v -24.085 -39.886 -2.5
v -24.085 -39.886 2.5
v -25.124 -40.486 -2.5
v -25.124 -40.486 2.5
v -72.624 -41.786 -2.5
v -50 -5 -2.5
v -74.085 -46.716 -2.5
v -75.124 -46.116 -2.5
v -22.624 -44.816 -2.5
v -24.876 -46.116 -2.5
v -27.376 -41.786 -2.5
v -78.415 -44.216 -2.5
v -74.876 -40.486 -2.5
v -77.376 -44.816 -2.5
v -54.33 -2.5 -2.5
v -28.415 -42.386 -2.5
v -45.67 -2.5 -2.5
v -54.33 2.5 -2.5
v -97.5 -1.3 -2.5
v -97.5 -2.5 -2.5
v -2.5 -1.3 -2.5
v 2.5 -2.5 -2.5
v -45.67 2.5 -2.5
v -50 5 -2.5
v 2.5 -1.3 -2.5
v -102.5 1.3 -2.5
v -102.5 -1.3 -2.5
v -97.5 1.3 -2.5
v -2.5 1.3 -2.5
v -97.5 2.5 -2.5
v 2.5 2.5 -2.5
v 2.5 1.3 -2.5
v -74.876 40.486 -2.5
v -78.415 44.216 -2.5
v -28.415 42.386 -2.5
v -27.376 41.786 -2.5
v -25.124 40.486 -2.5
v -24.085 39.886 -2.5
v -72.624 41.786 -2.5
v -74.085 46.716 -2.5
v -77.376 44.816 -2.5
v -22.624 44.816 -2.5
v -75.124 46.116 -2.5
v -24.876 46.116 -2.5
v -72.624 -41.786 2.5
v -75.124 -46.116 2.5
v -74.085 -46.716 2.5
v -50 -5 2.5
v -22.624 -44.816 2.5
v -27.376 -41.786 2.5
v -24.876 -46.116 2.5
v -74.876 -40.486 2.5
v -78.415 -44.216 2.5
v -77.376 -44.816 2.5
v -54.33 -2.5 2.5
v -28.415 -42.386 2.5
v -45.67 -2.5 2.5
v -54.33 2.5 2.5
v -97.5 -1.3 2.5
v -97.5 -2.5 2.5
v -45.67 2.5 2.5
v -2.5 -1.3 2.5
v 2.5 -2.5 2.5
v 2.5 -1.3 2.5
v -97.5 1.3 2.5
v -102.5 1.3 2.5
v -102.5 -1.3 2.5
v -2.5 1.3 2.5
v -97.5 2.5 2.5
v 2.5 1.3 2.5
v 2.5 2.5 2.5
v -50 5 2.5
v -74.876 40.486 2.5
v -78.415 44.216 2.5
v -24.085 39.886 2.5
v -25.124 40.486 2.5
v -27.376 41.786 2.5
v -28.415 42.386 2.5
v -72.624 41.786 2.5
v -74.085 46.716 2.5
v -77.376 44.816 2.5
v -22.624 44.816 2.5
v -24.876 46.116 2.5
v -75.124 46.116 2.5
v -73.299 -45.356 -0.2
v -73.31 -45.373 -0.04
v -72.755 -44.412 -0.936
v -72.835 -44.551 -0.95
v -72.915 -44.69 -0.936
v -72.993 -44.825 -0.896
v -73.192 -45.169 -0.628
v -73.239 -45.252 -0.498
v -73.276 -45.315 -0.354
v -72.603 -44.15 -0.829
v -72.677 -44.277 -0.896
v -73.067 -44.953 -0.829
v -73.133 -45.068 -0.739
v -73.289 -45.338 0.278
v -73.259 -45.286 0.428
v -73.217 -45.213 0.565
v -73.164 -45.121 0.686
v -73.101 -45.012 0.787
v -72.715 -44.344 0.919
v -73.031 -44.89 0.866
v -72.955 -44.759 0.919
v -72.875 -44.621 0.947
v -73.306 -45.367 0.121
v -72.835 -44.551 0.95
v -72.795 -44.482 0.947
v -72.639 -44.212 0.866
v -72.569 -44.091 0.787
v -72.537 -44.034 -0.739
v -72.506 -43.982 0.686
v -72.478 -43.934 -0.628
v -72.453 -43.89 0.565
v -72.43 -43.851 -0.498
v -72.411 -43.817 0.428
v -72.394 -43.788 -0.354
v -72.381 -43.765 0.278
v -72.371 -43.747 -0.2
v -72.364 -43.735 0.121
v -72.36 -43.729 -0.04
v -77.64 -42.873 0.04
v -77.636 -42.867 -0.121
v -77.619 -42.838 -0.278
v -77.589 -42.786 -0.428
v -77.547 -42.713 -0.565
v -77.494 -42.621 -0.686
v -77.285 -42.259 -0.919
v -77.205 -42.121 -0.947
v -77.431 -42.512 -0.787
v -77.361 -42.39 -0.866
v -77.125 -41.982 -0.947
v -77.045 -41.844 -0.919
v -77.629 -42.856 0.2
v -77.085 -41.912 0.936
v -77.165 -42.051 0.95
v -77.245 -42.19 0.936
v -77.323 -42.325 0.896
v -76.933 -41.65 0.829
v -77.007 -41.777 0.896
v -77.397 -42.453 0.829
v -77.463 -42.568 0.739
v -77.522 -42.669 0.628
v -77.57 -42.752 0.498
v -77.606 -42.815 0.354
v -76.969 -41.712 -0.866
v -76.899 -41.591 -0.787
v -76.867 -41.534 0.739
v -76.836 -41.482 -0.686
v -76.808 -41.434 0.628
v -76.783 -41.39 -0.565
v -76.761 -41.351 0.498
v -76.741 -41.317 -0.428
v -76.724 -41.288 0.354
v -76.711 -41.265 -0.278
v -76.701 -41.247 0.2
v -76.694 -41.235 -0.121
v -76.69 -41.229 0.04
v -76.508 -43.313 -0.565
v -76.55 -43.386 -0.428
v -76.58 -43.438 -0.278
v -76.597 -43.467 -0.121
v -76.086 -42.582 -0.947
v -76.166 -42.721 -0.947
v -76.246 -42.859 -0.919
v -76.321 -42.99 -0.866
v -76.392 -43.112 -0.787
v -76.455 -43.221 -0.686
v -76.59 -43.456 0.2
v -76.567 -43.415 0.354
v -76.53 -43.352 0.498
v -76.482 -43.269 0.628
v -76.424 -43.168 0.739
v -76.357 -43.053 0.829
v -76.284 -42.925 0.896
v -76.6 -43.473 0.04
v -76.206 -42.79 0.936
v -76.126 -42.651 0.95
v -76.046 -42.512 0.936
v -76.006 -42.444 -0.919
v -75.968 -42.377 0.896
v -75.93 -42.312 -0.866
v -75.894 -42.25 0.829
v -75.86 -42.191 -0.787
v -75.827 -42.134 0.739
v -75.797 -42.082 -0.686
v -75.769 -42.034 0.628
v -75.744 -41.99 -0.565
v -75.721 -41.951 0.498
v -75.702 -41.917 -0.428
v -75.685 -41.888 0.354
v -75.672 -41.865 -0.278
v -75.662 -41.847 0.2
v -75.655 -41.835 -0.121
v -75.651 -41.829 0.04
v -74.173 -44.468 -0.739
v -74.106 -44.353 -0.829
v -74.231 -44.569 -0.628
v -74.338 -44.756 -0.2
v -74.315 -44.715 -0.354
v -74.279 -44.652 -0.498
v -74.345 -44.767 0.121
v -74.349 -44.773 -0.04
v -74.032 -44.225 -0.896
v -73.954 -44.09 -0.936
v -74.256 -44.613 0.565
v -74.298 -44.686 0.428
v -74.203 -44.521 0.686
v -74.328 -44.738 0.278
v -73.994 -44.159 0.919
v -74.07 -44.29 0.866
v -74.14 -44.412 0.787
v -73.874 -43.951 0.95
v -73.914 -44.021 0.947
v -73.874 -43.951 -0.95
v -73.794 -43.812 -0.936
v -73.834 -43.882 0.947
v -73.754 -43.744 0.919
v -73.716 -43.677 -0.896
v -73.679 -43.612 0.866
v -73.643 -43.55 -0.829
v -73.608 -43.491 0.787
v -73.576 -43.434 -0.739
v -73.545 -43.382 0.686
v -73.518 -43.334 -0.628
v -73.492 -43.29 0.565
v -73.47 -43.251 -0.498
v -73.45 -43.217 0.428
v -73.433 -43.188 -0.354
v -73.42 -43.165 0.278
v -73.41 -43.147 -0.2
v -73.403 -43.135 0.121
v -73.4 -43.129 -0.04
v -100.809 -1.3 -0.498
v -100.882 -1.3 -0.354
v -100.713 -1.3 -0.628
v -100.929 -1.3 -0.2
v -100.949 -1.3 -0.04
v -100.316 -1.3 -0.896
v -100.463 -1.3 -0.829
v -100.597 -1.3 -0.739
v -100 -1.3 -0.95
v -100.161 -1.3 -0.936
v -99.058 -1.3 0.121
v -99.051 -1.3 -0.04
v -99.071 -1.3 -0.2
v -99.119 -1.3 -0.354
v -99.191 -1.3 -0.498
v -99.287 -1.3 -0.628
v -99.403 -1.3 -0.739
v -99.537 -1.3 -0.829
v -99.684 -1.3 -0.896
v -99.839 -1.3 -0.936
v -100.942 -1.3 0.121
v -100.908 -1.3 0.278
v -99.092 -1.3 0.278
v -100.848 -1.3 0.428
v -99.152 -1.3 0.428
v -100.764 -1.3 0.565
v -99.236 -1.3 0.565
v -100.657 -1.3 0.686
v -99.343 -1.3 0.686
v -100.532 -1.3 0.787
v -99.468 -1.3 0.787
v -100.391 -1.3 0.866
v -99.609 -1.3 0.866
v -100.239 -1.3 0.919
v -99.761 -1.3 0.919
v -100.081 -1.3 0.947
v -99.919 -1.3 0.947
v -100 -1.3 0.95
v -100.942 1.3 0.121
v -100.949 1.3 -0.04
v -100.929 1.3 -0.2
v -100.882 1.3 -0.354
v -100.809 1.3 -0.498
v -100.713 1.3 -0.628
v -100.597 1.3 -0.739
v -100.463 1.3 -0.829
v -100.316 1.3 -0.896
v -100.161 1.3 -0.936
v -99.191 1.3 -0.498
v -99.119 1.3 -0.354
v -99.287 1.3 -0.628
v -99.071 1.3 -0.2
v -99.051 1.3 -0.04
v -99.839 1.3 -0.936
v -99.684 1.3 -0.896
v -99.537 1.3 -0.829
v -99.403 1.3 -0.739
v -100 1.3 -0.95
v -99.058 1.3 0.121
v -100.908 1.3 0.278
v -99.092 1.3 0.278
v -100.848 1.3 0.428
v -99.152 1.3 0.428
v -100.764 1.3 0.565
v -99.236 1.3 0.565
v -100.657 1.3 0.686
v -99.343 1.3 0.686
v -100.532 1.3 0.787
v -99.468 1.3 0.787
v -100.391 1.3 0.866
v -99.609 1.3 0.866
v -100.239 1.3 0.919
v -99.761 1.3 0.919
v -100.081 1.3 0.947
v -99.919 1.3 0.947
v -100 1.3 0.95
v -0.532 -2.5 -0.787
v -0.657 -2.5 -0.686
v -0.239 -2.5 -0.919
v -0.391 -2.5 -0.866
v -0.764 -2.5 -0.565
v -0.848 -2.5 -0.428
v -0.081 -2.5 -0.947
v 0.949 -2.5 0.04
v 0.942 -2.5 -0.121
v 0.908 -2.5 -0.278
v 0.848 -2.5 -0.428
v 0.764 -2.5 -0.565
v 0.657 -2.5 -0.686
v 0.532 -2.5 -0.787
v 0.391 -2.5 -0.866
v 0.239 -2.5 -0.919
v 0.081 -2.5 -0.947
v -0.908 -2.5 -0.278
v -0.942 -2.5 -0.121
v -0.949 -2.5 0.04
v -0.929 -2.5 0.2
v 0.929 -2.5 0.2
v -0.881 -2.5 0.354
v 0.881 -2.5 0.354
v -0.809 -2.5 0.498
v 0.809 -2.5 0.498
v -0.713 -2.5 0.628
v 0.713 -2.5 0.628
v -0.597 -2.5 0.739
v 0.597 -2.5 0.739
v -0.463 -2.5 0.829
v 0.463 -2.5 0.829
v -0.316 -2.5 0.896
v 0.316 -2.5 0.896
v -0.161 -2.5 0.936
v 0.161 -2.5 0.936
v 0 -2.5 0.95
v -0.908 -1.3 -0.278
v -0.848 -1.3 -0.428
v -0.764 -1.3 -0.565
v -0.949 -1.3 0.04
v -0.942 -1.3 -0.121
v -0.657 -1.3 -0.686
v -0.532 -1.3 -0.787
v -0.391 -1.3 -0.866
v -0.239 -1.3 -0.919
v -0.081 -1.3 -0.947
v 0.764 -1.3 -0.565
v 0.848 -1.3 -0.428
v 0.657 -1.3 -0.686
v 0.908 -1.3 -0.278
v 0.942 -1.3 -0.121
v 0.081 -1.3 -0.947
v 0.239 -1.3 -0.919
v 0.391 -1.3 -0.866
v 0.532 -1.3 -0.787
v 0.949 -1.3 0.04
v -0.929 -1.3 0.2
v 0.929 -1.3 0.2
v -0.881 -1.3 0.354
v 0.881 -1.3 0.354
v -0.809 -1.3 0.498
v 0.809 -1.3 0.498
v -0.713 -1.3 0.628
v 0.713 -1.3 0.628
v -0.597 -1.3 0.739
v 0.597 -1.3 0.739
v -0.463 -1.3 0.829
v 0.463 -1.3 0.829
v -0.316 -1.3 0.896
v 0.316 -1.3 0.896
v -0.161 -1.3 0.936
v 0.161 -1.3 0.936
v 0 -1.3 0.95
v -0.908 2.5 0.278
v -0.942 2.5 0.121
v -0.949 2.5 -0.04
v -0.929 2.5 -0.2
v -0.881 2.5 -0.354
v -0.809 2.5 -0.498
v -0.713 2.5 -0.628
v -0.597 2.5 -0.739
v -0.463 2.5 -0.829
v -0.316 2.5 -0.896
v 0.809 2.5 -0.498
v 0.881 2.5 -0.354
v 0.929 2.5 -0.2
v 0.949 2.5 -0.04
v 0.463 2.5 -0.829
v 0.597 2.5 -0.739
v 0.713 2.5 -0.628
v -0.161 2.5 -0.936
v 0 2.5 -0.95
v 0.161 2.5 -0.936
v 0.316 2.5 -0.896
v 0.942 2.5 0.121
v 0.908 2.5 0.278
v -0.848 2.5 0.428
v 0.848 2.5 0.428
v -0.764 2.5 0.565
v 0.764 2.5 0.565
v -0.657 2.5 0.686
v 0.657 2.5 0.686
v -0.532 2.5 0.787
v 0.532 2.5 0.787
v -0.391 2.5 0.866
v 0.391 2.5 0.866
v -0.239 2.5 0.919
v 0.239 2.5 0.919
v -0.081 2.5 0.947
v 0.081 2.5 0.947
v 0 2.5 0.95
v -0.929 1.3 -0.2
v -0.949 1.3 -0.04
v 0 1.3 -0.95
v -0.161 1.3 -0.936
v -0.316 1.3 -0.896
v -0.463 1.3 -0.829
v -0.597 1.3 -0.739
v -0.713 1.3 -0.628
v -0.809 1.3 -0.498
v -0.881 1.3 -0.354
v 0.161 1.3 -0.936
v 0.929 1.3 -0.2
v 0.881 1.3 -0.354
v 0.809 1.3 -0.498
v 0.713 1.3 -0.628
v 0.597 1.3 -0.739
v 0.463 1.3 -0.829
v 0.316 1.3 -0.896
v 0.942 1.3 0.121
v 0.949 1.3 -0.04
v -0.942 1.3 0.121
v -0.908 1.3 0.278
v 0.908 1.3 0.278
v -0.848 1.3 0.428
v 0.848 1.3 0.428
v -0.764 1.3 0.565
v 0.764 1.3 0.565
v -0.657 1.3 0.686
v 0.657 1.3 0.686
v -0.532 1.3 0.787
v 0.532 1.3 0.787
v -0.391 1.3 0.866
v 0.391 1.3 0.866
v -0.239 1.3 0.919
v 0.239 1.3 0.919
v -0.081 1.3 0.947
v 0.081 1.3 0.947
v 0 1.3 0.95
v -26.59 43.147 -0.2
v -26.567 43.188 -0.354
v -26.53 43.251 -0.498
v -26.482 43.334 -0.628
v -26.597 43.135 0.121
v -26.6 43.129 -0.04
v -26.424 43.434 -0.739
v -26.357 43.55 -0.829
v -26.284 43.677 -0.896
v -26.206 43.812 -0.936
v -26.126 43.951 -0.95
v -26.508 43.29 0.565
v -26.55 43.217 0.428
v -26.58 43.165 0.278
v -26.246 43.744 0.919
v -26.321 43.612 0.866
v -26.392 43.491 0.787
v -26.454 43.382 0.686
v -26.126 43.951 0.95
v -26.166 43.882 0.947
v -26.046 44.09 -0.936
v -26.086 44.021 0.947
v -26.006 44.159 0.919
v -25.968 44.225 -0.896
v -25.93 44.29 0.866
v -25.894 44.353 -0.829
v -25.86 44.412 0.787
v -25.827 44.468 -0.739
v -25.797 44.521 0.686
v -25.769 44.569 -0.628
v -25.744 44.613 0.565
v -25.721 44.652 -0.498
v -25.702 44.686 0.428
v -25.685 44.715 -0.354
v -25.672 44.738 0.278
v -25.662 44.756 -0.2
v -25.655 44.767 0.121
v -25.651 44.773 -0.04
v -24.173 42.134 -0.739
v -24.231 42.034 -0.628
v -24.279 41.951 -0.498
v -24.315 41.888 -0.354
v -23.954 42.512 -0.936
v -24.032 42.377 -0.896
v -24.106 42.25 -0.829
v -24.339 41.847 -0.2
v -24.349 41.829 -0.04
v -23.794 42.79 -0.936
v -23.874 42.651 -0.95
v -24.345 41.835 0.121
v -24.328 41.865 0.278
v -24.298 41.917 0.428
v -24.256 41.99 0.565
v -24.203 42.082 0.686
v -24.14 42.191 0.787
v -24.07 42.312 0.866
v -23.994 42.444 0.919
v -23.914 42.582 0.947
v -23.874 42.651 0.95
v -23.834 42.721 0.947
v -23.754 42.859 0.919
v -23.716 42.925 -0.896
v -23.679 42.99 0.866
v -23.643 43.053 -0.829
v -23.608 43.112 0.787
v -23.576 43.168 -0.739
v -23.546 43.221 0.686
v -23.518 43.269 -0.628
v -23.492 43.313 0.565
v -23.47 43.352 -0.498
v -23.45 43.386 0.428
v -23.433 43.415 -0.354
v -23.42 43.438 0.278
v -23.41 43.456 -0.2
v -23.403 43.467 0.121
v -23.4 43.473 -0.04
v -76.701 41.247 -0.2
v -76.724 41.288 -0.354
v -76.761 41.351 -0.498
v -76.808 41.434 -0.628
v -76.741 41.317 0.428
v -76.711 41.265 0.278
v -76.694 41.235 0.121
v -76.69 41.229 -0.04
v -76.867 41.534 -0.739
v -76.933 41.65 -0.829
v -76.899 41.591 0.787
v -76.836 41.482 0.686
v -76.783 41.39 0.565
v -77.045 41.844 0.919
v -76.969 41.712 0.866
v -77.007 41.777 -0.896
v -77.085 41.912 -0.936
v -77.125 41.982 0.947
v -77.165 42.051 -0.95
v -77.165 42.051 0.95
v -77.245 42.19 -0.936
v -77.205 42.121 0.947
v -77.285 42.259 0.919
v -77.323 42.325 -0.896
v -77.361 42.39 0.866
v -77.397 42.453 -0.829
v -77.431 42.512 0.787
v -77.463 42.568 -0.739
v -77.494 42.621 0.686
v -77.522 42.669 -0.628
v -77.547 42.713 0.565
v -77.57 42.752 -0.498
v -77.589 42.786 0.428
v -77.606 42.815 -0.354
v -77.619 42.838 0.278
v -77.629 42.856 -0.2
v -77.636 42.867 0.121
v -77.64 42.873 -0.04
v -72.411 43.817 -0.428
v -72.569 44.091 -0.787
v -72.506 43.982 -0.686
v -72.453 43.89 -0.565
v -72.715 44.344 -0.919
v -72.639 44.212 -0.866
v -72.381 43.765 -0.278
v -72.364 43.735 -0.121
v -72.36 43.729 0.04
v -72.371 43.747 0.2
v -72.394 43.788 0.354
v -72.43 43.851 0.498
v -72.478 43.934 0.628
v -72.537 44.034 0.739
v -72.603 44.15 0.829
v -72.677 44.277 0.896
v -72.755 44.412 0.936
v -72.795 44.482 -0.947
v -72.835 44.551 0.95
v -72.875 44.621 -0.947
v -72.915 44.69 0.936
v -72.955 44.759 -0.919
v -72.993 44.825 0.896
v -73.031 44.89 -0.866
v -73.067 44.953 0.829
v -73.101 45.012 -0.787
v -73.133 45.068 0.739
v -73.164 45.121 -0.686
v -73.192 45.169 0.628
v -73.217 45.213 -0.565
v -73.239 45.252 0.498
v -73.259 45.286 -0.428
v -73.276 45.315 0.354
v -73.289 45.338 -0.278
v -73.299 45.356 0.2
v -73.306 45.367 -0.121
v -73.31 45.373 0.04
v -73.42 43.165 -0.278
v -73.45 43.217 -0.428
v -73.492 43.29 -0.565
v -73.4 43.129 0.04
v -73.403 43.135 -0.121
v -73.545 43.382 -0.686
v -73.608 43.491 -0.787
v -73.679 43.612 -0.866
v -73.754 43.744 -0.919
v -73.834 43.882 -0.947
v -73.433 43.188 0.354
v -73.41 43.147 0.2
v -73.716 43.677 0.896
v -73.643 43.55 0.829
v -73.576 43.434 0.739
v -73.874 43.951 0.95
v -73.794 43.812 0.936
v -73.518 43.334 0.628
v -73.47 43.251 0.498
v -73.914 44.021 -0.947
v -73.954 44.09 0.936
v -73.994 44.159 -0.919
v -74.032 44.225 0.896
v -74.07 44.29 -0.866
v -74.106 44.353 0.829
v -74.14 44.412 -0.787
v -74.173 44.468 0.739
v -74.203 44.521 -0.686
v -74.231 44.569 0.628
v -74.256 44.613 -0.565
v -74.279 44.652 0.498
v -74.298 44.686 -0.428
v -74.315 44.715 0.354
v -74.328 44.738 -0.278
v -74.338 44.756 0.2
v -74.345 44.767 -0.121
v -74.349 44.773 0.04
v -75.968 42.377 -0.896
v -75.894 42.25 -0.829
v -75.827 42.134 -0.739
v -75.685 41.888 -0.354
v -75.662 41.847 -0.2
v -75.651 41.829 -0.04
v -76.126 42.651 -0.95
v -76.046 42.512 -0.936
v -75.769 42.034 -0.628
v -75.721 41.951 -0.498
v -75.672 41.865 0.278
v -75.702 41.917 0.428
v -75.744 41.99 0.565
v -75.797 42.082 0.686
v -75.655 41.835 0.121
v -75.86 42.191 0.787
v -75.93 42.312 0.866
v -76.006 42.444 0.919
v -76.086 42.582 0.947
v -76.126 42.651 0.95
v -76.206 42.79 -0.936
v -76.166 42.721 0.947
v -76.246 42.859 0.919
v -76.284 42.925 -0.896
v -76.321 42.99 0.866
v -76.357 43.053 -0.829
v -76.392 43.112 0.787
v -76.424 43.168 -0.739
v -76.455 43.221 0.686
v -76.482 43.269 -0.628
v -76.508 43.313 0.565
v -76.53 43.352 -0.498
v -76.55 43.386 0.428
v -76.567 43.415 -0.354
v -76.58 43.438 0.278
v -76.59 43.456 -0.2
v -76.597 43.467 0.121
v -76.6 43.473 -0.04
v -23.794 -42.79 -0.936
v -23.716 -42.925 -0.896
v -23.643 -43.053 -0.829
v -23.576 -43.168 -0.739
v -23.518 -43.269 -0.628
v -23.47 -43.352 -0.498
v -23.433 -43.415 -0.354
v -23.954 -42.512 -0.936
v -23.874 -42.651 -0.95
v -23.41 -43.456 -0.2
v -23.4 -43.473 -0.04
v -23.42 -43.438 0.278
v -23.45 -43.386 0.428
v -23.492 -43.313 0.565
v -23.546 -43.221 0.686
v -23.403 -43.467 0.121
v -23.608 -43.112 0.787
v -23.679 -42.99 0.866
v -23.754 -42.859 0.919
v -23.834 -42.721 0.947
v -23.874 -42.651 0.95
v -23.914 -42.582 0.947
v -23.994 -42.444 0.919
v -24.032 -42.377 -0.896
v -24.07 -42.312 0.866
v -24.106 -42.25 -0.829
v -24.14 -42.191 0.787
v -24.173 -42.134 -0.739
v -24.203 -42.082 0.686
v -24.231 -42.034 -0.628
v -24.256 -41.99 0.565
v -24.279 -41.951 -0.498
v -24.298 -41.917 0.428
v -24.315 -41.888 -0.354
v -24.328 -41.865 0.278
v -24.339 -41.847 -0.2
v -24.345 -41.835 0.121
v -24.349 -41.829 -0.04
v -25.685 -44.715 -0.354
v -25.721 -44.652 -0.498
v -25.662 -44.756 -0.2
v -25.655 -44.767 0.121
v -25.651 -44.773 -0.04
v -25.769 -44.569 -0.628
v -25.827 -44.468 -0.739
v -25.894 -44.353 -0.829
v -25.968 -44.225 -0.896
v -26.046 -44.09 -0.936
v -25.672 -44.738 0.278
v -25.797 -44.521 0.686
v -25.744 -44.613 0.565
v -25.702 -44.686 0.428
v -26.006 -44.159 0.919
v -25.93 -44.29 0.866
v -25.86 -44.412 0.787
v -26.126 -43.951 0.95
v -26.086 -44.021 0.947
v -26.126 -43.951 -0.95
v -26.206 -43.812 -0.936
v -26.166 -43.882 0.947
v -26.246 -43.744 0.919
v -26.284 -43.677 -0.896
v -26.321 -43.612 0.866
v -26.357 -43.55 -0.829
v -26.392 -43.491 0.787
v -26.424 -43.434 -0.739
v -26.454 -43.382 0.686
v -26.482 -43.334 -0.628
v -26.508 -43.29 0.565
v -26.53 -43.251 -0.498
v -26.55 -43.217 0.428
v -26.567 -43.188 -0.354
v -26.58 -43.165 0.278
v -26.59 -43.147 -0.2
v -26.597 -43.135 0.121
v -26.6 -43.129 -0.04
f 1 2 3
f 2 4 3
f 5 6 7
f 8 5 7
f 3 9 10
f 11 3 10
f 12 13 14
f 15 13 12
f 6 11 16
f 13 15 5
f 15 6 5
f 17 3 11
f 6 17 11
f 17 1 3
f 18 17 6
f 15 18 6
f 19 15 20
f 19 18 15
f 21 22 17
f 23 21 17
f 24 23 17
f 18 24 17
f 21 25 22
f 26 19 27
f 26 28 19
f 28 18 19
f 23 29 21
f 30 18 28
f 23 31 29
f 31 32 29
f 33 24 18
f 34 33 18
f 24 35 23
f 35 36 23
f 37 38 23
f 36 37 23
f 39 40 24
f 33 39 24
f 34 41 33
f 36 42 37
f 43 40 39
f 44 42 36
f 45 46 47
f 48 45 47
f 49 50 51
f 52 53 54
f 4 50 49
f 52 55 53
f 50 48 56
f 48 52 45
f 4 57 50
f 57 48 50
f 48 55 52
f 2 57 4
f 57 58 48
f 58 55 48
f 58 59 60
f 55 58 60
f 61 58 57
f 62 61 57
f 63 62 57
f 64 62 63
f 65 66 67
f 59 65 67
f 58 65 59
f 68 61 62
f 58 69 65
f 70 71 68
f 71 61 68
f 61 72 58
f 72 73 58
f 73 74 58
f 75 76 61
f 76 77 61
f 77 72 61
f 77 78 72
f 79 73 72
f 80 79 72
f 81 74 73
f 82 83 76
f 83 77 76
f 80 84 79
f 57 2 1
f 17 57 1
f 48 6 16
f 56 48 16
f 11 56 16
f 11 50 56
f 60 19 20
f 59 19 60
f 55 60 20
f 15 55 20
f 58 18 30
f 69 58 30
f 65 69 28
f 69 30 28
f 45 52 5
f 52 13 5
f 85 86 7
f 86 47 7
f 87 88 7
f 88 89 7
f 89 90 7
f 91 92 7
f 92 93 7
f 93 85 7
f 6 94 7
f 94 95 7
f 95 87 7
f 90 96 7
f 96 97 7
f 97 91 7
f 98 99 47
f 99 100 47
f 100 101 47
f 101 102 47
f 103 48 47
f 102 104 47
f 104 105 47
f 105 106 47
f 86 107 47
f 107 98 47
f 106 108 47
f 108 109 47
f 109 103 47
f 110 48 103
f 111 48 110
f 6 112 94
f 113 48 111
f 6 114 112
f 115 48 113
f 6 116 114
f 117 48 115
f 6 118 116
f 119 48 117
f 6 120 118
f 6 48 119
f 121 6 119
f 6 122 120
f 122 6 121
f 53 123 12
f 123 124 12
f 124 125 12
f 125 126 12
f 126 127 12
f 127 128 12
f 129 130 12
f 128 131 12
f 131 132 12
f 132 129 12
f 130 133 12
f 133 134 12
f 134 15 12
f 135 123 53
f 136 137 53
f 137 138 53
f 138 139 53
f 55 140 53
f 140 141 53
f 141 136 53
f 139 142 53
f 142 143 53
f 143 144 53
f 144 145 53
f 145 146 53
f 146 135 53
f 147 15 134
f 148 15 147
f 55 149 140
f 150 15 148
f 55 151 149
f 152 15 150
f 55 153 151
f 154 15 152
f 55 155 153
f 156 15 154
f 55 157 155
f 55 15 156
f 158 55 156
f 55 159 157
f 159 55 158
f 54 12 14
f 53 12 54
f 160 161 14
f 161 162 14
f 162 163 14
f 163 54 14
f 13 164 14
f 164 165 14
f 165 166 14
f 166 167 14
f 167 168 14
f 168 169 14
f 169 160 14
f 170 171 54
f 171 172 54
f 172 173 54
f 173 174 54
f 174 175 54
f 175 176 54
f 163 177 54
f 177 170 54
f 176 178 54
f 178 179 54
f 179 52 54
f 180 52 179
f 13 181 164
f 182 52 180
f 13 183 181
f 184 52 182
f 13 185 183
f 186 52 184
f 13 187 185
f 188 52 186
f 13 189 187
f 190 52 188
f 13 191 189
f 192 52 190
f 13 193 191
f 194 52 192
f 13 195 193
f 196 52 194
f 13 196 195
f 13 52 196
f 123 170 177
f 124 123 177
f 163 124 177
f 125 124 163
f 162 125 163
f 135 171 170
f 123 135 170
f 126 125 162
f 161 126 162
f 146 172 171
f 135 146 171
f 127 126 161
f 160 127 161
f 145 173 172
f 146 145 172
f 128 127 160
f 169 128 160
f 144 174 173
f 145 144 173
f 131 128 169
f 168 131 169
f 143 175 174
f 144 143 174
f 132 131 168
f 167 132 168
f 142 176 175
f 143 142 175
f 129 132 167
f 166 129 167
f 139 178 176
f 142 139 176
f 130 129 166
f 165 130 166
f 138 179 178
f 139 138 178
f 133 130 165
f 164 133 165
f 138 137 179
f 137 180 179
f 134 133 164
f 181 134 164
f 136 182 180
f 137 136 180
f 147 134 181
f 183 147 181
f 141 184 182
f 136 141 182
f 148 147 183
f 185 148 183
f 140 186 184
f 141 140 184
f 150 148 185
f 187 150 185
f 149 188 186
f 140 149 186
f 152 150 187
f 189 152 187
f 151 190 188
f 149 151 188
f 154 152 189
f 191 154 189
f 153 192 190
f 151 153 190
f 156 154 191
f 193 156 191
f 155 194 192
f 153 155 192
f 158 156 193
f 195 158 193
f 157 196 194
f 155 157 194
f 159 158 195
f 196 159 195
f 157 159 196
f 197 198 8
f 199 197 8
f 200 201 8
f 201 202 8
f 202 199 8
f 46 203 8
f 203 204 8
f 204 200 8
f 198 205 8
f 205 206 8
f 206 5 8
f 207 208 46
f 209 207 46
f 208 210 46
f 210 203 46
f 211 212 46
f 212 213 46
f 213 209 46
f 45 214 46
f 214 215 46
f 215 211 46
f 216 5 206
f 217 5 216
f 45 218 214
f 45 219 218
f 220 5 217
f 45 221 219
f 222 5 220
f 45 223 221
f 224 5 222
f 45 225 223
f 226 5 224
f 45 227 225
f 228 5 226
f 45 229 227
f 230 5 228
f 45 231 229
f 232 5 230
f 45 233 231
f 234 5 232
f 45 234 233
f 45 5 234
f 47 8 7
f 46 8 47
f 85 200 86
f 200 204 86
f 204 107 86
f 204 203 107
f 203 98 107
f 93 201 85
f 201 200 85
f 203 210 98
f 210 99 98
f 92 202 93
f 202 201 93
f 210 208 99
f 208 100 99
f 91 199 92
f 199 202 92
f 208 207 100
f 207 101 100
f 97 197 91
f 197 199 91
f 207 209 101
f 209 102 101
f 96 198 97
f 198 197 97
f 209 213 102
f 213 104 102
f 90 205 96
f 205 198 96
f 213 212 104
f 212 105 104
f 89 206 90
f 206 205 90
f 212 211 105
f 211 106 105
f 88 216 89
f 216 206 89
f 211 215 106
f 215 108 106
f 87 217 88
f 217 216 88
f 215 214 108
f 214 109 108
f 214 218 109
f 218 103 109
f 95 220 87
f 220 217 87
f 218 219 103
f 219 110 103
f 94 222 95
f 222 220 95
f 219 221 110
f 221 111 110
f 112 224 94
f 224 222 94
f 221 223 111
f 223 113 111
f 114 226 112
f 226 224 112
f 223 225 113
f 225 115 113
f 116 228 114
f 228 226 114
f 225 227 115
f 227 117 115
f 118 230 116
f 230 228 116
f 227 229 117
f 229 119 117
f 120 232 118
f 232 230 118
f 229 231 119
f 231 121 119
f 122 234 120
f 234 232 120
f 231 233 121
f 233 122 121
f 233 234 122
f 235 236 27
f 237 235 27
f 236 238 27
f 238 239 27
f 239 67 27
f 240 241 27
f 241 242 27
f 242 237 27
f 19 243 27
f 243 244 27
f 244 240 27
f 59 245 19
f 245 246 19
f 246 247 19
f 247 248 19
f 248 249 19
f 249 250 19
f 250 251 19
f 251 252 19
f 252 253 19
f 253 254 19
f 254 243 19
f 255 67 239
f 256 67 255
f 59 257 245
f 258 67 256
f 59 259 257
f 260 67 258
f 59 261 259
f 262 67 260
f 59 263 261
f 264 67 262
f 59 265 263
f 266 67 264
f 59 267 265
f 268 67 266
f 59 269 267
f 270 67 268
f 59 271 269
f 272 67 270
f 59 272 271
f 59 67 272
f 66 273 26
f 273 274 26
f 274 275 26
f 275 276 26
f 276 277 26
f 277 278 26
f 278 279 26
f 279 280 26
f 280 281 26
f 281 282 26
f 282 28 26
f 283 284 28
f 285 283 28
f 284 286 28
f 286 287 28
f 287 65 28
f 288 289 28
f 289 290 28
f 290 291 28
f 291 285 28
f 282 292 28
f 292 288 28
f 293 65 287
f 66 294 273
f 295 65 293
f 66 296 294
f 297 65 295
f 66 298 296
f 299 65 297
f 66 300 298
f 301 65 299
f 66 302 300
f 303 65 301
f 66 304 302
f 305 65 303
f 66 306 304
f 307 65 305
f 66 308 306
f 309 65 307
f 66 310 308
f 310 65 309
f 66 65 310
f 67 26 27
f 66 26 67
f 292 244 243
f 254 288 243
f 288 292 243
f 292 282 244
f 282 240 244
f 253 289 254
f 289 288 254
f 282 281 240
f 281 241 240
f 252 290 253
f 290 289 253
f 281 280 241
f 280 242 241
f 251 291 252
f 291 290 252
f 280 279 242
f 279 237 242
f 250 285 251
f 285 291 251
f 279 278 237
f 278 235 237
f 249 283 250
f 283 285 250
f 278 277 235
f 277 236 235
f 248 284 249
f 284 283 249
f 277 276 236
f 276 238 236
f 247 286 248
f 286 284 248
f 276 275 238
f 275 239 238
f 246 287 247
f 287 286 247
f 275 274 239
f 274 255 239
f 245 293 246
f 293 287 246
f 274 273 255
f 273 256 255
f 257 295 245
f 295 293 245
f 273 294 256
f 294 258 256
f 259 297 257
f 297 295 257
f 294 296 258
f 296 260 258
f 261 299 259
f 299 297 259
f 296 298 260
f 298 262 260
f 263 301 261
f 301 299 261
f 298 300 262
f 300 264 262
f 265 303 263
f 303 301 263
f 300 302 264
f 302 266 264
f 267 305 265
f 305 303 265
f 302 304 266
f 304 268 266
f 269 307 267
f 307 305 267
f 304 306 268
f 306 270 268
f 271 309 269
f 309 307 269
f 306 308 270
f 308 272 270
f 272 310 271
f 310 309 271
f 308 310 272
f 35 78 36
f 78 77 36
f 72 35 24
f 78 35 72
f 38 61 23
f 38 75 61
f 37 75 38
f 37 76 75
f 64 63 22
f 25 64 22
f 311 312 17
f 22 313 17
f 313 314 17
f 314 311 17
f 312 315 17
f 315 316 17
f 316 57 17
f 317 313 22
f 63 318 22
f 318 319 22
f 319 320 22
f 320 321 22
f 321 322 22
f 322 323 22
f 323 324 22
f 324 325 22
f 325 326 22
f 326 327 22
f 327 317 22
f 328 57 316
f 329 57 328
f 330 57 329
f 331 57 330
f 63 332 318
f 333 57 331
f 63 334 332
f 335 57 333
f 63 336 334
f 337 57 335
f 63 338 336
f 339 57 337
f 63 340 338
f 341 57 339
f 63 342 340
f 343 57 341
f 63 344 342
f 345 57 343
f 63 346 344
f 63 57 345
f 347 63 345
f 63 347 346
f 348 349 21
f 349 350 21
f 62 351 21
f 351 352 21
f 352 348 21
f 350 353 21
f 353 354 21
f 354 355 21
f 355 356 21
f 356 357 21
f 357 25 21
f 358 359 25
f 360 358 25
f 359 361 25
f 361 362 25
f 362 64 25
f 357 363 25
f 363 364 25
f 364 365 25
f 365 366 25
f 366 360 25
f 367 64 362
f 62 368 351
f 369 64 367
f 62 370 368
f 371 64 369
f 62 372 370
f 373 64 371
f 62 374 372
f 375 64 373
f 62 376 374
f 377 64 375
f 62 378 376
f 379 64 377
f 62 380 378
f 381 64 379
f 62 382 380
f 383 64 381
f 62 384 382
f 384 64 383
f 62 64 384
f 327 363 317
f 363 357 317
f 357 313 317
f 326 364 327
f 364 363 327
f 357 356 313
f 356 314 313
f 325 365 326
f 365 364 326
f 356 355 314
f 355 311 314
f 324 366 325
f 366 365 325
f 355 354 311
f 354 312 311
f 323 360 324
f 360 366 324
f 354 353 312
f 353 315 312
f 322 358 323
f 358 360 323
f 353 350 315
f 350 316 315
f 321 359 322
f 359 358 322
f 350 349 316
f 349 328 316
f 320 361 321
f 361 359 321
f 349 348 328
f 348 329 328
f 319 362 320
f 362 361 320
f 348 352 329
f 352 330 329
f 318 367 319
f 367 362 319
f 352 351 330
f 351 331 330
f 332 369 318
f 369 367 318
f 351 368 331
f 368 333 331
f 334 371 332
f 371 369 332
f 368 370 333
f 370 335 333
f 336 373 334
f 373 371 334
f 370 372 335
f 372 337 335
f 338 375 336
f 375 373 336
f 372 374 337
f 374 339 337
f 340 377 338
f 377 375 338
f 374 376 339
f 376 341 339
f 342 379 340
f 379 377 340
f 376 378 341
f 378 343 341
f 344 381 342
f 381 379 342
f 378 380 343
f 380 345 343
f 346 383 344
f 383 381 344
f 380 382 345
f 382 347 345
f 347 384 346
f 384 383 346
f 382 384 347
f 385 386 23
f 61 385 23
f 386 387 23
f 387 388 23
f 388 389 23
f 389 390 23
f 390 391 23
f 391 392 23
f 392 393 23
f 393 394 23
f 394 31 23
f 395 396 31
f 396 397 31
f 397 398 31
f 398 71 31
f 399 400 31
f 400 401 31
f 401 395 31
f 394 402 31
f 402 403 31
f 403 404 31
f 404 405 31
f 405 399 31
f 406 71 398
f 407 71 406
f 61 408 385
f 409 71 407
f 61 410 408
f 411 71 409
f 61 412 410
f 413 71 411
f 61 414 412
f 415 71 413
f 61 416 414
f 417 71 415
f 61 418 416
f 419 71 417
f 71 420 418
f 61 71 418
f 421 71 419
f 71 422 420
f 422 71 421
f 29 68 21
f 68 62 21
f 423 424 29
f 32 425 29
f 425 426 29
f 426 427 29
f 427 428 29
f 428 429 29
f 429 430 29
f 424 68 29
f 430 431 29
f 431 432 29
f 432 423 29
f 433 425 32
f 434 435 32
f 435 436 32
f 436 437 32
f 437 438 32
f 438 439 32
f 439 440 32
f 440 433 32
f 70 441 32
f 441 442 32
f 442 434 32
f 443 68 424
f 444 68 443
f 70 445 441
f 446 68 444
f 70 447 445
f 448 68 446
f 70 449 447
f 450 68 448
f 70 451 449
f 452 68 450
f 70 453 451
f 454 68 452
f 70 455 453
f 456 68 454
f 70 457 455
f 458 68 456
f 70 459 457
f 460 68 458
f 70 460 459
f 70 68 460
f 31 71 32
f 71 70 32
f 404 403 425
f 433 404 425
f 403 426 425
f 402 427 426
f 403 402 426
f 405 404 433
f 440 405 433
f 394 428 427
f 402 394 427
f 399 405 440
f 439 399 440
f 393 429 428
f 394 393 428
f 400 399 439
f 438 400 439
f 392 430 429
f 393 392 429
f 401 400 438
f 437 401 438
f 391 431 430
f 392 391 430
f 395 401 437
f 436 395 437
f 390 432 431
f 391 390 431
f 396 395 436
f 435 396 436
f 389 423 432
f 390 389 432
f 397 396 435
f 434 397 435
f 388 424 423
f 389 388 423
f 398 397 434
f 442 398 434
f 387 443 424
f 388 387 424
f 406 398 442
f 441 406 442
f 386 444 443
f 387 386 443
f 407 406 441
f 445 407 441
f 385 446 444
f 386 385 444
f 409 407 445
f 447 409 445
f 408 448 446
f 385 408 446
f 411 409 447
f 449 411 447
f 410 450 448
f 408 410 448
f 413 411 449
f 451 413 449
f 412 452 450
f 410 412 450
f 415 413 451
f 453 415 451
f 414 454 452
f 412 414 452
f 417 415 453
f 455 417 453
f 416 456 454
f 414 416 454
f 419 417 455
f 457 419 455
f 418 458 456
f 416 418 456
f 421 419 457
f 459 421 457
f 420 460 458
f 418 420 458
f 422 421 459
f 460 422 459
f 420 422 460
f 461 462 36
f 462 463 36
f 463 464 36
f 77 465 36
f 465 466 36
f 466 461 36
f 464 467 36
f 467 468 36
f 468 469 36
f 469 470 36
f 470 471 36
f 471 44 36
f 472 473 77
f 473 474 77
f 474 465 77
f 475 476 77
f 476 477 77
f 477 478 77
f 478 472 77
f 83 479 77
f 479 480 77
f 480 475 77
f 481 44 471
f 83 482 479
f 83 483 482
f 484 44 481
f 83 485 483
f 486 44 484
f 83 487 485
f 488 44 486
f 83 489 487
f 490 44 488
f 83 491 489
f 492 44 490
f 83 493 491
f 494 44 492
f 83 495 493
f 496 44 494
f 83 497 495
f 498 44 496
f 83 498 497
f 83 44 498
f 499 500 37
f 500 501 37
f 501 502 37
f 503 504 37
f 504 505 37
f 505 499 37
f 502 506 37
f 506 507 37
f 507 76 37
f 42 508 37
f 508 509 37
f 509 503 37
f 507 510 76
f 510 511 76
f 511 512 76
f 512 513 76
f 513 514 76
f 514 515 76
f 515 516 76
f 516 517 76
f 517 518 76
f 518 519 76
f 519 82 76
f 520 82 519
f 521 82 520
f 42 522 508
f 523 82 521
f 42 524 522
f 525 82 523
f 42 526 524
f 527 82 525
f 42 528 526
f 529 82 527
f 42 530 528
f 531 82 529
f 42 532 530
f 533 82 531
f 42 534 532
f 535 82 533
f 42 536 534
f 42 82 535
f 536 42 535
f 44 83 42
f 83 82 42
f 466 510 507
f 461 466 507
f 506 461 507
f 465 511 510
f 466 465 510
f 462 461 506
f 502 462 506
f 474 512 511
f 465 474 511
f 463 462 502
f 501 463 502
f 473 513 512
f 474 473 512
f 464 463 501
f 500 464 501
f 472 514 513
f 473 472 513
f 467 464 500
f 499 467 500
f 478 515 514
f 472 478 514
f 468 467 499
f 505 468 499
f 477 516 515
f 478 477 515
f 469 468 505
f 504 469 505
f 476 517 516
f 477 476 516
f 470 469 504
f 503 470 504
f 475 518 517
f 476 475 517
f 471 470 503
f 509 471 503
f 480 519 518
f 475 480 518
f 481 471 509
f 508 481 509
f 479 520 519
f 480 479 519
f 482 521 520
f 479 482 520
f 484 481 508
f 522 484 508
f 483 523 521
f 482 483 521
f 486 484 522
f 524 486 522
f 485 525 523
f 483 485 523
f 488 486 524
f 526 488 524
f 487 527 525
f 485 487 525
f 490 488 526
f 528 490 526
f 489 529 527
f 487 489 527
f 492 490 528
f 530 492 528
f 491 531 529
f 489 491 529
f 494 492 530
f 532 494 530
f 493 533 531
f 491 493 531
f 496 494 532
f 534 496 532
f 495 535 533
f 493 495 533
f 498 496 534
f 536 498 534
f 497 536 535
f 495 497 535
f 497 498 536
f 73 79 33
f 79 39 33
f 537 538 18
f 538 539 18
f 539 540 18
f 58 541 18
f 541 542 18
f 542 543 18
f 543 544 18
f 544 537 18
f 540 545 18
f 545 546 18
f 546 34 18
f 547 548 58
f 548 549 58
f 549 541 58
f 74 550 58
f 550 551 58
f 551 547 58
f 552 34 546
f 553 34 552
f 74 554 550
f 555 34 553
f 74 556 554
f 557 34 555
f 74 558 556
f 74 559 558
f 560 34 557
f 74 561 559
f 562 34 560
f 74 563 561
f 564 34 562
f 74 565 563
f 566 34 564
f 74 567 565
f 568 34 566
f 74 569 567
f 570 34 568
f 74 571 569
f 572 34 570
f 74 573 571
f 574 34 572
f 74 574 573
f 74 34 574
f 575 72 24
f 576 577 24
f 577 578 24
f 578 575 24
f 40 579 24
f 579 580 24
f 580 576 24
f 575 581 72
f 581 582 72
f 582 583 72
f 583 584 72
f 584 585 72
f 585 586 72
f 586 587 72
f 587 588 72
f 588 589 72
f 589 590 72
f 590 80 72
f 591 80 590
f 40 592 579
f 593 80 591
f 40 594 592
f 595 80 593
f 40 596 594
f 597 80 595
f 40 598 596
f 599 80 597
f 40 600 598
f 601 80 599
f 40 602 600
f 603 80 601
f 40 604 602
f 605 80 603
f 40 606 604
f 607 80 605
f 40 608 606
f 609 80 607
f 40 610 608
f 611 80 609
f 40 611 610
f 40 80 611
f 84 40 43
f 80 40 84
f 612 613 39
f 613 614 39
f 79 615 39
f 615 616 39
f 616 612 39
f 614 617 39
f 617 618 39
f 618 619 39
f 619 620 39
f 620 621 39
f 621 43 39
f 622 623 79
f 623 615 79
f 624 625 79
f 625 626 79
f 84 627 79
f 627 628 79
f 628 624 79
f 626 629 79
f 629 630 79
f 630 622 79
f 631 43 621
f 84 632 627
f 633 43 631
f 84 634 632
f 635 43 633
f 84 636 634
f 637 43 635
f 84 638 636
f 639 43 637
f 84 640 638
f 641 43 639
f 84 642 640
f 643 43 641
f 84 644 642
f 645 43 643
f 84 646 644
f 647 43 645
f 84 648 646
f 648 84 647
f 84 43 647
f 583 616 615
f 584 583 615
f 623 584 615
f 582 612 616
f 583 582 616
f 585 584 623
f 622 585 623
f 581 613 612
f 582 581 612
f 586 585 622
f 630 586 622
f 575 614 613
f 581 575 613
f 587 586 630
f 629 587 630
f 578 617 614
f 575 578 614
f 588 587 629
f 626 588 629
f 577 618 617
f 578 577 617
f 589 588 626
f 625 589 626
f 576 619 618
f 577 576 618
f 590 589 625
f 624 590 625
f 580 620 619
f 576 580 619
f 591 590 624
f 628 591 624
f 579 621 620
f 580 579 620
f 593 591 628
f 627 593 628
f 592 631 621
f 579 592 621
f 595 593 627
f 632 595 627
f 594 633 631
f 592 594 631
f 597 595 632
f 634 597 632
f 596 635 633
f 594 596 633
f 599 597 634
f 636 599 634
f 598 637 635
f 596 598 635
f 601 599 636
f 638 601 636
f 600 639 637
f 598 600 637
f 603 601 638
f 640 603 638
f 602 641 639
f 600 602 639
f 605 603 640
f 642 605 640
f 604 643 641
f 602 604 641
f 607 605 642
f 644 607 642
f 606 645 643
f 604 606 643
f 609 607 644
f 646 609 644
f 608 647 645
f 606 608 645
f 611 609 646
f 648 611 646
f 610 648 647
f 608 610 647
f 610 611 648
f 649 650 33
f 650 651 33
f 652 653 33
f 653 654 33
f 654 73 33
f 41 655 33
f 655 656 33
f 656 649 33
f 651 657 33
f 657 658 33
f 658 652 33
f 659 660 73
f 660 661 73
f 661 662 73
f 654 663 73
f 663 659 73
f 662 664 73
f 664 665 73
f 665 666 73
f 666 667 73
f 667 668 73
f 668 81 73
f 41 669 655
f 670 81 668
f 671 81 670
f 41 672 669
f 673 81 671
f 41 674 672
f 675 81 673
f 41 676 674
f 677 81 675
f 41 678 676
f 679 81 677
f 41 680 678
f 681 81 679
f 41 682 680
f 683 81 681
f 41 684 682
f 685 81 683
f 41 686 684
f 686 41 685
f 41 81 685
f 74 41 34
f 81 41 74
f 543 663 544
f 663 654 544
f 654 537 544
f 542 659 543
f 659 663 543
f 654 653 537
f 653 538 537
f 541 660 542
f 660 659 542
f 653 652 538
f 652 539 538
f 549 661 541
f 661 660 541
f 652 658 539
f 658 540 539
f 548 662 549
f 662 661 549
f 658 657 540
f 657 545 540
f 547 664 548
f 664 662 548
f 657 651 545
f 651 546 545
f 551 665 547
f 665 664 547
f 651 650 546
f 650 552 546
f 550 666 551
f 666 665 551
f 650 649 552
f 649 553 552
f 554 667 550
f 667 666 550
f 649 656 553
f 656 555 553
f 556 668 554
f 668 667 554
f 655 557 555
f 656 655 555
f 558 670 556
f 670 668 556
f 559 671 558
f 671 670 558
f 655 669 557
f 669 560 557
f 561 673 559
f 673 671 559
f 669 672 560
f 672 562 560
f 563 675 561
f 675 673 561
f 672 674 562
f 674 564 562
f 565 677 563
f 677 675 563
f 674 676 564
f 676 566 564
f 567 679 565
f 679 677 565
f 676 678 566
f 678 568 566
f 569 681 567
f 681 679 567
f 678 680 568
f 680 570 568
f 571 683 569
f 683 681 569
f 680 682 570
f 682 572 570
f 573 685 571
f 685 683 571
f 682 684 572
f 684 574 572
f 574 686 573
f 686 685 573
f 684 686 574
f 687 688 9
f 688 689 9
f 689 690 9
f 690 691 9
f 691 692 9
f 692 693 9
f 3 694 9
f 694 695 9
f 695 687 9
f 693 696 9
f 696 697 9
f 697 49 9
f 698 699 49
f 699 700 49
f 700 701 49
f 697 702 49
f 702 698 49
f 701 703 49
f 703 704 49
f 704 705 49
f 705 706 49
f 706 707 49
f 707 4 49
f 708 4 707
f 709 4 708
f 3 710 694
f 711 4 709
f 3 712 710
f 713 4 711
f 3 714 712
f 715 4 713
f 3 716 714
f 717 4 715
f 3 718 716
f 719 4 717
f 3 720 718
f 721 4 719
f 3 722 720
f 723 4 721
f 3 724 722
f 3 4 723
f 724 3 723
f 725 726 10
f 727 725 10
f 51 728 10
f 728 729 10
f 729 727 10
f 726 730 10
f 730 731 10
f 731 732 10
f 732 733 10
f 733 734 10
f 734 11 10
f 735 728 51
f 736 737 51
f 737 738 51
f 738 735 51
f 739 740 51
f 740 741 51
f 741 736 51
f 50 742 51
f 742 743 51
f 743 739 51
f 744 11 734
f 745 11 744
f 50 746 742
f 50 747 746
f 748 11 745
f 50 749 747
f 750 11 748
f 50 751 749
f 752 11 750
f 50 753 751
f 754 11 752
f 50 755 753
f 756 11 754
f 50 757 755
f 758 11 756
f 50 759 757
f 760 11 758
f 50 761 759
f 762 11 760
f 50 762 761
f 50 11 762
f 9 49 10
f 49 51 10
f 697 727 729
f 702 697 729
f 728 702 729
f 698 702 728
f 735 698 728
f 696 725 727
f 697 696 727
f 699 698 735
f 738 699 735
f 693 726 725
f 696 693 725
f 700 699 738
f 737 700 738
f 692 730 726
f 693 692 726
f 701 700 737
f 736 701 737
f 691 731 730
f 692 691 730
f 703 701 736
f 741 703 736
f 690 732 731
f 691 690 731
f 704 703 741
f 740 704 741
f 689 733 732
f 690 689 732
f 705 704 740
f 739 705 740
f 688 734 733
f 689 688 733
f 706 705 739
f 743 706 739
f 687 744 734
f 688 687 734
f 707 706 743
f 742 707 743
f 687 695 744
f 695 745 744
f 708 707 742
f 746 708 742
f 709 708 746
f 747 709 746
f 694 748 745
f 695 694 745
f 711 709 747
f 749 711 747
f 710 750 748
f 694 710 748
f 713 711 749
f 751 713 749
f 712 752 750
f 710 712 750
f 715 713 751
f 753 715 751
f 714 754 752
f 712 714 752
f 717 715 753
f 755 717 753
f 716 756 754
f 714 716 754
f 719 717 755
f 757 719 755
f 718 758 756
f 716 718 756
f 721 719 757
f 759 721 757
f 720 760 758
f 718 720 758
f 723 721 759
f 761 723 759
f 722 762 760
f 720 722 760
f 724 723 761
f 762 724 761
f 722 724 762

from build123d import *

# Parameters (mm, degrees)
SKETCH1_W               = 5
SKETCH1_H               = 5
SKETCH1_R               = 0.95
CENTER_DEPTH            = 1.3
RIGHTSIDE_START         = 1.3
SKETCH1_2_W             = 5
SKETCH1_2_H             = 5
SKETCH1_2_R             = 0.95
RIGHTSIDE_DEPTH         = 1.2
LEFTSIDE_START          = -1.3
SKETCH1_3_W             = 5
SKETCH1_3_H             = 5
SKETCH1_3_R             = 0.95
LEFTSIDE_DEPTH          = 1.2
SKETCH3_W               = 5
SKETCH3_H               = 5
BOSS_EXTRUDE4_DEPTH     = 47.5
CUT_EXTRUDE1_DEPTH      = 5
CIRPATTERN2_COUNT       = 6
CIRPATTERN3_COUNT       = 3
CIRPATTERN4_START       = -44.601270189
CIRPATTERN4_OUTLINE_W   = 5
CIRPATTERN4_OUTLINE_H   = 5
CIRPATTERN4_OUTLINE_R   = 0.95
CIRPATTERN4_DEPTH       = 2.6
CIRPATTERN4_2_OUTLINE_W = 5
CIRPATTERN4_2_OUTLINE_H = 5
CIRPATTERN4_2_OUTLINE_R = 0.95
CIRPATTERN4_2_DEPTH     = 2.6
CIRPATTERN4_START_2     = -1.3
CIRPATTERN4_3_OUTLINE_W = 5
CIRPATTERN4_3_OUTLINE_H = 5
CIRPATTERN4_3_OUTLINE_R = 0.95
CIRPATTERN4_3_DEPTH     = 2.6
SKETCH5_W               = 5
SKETCH5_H               = 2.6
CUT_EXTRUDE2_DEPTH      = 5


# Read off the part's stored shape, not the designer's step: CirPattern4
with BuildPart() as part:
    # Sketch1 → Center (new, symmetric)
    with BuildSketch(Plane(origin=(0, 0, 0), x_dir=(1, 0, 0), z_dir=(0, 1, 0))):
        Rectangle(SKETCH1_W, SKETCH1_H)
        with Locations(Location((0, 0, 0), (0, 0, 270))):
            Circle(SKETCH1_R, mode=Mode.SUBTRACT)
    extrude(amount=CENTER_DEPTH, both=True)

    # Sketch5 → Cut-Extrude2 (cut)
    with BuildSketch(Plane(origin=(2.5, 0, 0), x_dir=(0, 0, -1), z_dir=(1, 0, 0))):
        Rectangle(SKETCH5_W, SKETCH5_H)
    extrude(amount=-CUT_EXTRUDE2_DEPTH, mode=Mode.SUBTRACT)


with BuildPart() as body_2:
    # Sketch1<2> → RightSide (new body)
    with BuildSketch(Plane(origin=(0, 0, 0), x_dir=(1, 0, 0), z_dir=(0, 1, 0)).offset(RIGHTSIDE_START)):
        Rectangle(SKETCH1_2_W, SKETCH1_2_H)
        with Locations(Location((0, 0, 0), (0, 0, 270))):
            Circle(SKETCH1_2_R, mode=Mode.SUBTRACT)
    extrude(amount=RIGHTSIDE_DEPTH)


with BuildPart() as body_3:
    # Sketch1<3> → LeftSide (new body)
    with BuildSketch(Plane(origin=(0, 0, 0), x_dir=(1, 0, 0), z_dir=(0, 1, 0)).offset(LEFTSIDE_START)):
        Rectangle(SKETCH1_3_W, SKETCH1_3_H)
        with Locations(Location((0, 0, 0), (0, 0, 270))):
            Circle(SKETCH1_3_R, mode=Mode.SUBTRACT)
    extrude(amount=-LEFTSIDE_DEPTH)


with BuildPart() as body_4:
    # Sketch3 → Boss-Extrude4 (new body)
    with BuildSketch(Plane.ZY.offset(2.5)):
        Rectangle(SKETCH3_W, SKETCH3_H)
    extrude(amount=BOSS_EXTRUDE4_DEPTH)

    # Sketch4 → Cut-Extrude1 (cut)
    with BuildSketch(Plane.XY.offset(-2.5)):
        Polygon((-50, 0), (-50, -2.5), (-45.669872981, -2.5), align=None)
        Polygon((-50, 2.5), (-50, 0), (-45.669872981, 2.5), align=None)
    extrude(amount=CUT_EXTRUDE1_DEPTH, mode=Mode.SUBTRACT)


with BuildPart() as cirpattern2_1:
    # CirPattern2: pattern copy
    add(body_4.part.rotate(Axis((-50, 0, 0), (0, 0, 1)), 1 * 360 / CIRPATTERN2_COUNT))


with BuildPart() as cirpattern2_2:
    # CirPattern2: pattern copy
    add(body_4.part.rotate(Axis((-50, 0, 0), (0, 0, 1)), 2 * 360 / CIRPATTERN2_COUNT))


with BuildPart() as cirpattern2_3:
    # CirPattern2: pattern copy
    add(body_4.part.rotate(Axis((-50, 0, 0), (0, 0, 1)), 3 * 360 / CIRPATTERN2_COUNT))


with BuildPart() as cirpattern2_4:
    # CirPattern2: pattern copy
    add(body_4.part.rotate(Axis((-50, 0, 0), (0, 0, 1)), 4 * 360 / CIRPATTERN2_COUNT))


with BuildPart() as cirpattern2_5:
    # CirPattern2: pattern copy
    add(body_4.part.rotate(Axis((-50, 0, 0), (0, 0, 1)), 5 * 360 / CIRPATTERN2_COUNT))


with BuildPart() as cirpattern3_1:
    # CirPattern3: pattern copy
    add(body_3.part.rotate(Axis((-50, 0, 0), (0, 0, 1)), 1 * 360 / CIRPATTERN3_COUNT))


with BuildPart() as cirpattern3_2:
    # CirPattern3: pattern copy
    add(body_3.part.rotate(Axis((-50, 0, 0), (0, 0, 1)), 2 * 360 / CIRPATTERN3_COUNT))


with BuildPart() as cirpattern3_3:
    # CirPattern3: pattern copy
    add(body_2.part.rotate(Axis((-50, 0, 0), (0, 0, 1)), 1 * 360 / CIRPATTERN3_COUNT))


with BuildPart() as cirpattern3_4:
    # CirPattern3: pattern copy
    add(body_2.part.rotate(Axis((-50, 0, 0), (0, 0, 1)), 2 * 360 / CIRPATTERN3_COUNT))


with BuildPart() as body_14:
    # CirPattern4 outline → CirPattern4 (new body)
    with BuildSketch(Plane(origin=(0, 0, 0), x_dir=(0.49999999999999767, 0.86602540378444, 0), z_dir=(0.8660254037844399, -0.49999999999999795, 0)).offset(CIRPATTERN4_START)):
        with Locations((25, 0)):
            Rectangle(CIRPATTERN4_OUTLINE_W, CIRPATTERN4_OUTLINE_H)
        with Locations((25, 0)):
            Circle(CIRPATTERN4_OUTLINE_R, mode=Mode.SUBTRACT)
    extrude(amount=CIRPATTERN4_DEPTH)


with BuildPart() as body_15:
    # CirPattern4 2 outline → CirPattern4 2 (new body)
    with BuildSketch(Plane(origin=(0, 0, 0), x_dir=(0.5000000000000098, -0.8660254037844329, 0), z_dir=(0.8660254037844329, 0.50000000000001, 0)).offset(CIRPATTERN4_START)):
        with Locations((25, 0)):
            Rectangle(CIRPATTERN4_2_OUTLINE_W, CIRPATTERN4_2_OUTLINE_H)
        with Locations((25, 0)):
            Circle(CIRPATTERN4_2_OUTLINE_R, mode=Mode.SUBTRACT)
    extrude(amount=CIRPATTERN4_2_DEPTH)


with BuildPart() as body_16:
    # CirPattern4 3 outline → CirPattern4 3 (new body)
    with BuildSketch(Plane(origin=(0, 0, 0), x_dir=(1, 0, 0), z_dir=(0, 1, 0)).offset(CIRPATTERN4_START_2)):
        with Locations((-100, 0)):
            Rectangle(CIRPATTERN4_3_OUTLINE_W, CIRPATTERN4_3_OUTLINE_H)
        with Locations((-100, 0)):
            Circle(CIRPATTERN4_3_OUTLINE_R, mode=Mode.SUBTRACT)
    extrude(amount=CIRPATTERN4_3_DEPTH)


with BuildPart() as cirpattern2_5_1:
    add(cirpattern2_5.part)

    # Combine1: union CirPattern2_3, CirPattern2_4, body 16, CirPattern3_2, CirPattern3_4, body 15, CirPattern2_1, body 3, body 14, body 4, body 2, CirPattern2_2, CirPattern3_1, CirPattern3_3
    add(cirpattern2_3.part)
    add(cirpattern2_4.part)
    add(body_16.part)
    add(cirpattern3_2.part)
    add(cirpattern3_4.part)
    add(body_15.part)
    add(cirpattern2_1.part)
    add(body_3.part)
    add(body_14.part)
    add(body_4.part)
    add(body_2.part)
    add(cirpattern2_2.part)
    add(cirpattern3_1.part)
    add(cirpattern3_3.part)


solid = cirpattern2_5_1.part
